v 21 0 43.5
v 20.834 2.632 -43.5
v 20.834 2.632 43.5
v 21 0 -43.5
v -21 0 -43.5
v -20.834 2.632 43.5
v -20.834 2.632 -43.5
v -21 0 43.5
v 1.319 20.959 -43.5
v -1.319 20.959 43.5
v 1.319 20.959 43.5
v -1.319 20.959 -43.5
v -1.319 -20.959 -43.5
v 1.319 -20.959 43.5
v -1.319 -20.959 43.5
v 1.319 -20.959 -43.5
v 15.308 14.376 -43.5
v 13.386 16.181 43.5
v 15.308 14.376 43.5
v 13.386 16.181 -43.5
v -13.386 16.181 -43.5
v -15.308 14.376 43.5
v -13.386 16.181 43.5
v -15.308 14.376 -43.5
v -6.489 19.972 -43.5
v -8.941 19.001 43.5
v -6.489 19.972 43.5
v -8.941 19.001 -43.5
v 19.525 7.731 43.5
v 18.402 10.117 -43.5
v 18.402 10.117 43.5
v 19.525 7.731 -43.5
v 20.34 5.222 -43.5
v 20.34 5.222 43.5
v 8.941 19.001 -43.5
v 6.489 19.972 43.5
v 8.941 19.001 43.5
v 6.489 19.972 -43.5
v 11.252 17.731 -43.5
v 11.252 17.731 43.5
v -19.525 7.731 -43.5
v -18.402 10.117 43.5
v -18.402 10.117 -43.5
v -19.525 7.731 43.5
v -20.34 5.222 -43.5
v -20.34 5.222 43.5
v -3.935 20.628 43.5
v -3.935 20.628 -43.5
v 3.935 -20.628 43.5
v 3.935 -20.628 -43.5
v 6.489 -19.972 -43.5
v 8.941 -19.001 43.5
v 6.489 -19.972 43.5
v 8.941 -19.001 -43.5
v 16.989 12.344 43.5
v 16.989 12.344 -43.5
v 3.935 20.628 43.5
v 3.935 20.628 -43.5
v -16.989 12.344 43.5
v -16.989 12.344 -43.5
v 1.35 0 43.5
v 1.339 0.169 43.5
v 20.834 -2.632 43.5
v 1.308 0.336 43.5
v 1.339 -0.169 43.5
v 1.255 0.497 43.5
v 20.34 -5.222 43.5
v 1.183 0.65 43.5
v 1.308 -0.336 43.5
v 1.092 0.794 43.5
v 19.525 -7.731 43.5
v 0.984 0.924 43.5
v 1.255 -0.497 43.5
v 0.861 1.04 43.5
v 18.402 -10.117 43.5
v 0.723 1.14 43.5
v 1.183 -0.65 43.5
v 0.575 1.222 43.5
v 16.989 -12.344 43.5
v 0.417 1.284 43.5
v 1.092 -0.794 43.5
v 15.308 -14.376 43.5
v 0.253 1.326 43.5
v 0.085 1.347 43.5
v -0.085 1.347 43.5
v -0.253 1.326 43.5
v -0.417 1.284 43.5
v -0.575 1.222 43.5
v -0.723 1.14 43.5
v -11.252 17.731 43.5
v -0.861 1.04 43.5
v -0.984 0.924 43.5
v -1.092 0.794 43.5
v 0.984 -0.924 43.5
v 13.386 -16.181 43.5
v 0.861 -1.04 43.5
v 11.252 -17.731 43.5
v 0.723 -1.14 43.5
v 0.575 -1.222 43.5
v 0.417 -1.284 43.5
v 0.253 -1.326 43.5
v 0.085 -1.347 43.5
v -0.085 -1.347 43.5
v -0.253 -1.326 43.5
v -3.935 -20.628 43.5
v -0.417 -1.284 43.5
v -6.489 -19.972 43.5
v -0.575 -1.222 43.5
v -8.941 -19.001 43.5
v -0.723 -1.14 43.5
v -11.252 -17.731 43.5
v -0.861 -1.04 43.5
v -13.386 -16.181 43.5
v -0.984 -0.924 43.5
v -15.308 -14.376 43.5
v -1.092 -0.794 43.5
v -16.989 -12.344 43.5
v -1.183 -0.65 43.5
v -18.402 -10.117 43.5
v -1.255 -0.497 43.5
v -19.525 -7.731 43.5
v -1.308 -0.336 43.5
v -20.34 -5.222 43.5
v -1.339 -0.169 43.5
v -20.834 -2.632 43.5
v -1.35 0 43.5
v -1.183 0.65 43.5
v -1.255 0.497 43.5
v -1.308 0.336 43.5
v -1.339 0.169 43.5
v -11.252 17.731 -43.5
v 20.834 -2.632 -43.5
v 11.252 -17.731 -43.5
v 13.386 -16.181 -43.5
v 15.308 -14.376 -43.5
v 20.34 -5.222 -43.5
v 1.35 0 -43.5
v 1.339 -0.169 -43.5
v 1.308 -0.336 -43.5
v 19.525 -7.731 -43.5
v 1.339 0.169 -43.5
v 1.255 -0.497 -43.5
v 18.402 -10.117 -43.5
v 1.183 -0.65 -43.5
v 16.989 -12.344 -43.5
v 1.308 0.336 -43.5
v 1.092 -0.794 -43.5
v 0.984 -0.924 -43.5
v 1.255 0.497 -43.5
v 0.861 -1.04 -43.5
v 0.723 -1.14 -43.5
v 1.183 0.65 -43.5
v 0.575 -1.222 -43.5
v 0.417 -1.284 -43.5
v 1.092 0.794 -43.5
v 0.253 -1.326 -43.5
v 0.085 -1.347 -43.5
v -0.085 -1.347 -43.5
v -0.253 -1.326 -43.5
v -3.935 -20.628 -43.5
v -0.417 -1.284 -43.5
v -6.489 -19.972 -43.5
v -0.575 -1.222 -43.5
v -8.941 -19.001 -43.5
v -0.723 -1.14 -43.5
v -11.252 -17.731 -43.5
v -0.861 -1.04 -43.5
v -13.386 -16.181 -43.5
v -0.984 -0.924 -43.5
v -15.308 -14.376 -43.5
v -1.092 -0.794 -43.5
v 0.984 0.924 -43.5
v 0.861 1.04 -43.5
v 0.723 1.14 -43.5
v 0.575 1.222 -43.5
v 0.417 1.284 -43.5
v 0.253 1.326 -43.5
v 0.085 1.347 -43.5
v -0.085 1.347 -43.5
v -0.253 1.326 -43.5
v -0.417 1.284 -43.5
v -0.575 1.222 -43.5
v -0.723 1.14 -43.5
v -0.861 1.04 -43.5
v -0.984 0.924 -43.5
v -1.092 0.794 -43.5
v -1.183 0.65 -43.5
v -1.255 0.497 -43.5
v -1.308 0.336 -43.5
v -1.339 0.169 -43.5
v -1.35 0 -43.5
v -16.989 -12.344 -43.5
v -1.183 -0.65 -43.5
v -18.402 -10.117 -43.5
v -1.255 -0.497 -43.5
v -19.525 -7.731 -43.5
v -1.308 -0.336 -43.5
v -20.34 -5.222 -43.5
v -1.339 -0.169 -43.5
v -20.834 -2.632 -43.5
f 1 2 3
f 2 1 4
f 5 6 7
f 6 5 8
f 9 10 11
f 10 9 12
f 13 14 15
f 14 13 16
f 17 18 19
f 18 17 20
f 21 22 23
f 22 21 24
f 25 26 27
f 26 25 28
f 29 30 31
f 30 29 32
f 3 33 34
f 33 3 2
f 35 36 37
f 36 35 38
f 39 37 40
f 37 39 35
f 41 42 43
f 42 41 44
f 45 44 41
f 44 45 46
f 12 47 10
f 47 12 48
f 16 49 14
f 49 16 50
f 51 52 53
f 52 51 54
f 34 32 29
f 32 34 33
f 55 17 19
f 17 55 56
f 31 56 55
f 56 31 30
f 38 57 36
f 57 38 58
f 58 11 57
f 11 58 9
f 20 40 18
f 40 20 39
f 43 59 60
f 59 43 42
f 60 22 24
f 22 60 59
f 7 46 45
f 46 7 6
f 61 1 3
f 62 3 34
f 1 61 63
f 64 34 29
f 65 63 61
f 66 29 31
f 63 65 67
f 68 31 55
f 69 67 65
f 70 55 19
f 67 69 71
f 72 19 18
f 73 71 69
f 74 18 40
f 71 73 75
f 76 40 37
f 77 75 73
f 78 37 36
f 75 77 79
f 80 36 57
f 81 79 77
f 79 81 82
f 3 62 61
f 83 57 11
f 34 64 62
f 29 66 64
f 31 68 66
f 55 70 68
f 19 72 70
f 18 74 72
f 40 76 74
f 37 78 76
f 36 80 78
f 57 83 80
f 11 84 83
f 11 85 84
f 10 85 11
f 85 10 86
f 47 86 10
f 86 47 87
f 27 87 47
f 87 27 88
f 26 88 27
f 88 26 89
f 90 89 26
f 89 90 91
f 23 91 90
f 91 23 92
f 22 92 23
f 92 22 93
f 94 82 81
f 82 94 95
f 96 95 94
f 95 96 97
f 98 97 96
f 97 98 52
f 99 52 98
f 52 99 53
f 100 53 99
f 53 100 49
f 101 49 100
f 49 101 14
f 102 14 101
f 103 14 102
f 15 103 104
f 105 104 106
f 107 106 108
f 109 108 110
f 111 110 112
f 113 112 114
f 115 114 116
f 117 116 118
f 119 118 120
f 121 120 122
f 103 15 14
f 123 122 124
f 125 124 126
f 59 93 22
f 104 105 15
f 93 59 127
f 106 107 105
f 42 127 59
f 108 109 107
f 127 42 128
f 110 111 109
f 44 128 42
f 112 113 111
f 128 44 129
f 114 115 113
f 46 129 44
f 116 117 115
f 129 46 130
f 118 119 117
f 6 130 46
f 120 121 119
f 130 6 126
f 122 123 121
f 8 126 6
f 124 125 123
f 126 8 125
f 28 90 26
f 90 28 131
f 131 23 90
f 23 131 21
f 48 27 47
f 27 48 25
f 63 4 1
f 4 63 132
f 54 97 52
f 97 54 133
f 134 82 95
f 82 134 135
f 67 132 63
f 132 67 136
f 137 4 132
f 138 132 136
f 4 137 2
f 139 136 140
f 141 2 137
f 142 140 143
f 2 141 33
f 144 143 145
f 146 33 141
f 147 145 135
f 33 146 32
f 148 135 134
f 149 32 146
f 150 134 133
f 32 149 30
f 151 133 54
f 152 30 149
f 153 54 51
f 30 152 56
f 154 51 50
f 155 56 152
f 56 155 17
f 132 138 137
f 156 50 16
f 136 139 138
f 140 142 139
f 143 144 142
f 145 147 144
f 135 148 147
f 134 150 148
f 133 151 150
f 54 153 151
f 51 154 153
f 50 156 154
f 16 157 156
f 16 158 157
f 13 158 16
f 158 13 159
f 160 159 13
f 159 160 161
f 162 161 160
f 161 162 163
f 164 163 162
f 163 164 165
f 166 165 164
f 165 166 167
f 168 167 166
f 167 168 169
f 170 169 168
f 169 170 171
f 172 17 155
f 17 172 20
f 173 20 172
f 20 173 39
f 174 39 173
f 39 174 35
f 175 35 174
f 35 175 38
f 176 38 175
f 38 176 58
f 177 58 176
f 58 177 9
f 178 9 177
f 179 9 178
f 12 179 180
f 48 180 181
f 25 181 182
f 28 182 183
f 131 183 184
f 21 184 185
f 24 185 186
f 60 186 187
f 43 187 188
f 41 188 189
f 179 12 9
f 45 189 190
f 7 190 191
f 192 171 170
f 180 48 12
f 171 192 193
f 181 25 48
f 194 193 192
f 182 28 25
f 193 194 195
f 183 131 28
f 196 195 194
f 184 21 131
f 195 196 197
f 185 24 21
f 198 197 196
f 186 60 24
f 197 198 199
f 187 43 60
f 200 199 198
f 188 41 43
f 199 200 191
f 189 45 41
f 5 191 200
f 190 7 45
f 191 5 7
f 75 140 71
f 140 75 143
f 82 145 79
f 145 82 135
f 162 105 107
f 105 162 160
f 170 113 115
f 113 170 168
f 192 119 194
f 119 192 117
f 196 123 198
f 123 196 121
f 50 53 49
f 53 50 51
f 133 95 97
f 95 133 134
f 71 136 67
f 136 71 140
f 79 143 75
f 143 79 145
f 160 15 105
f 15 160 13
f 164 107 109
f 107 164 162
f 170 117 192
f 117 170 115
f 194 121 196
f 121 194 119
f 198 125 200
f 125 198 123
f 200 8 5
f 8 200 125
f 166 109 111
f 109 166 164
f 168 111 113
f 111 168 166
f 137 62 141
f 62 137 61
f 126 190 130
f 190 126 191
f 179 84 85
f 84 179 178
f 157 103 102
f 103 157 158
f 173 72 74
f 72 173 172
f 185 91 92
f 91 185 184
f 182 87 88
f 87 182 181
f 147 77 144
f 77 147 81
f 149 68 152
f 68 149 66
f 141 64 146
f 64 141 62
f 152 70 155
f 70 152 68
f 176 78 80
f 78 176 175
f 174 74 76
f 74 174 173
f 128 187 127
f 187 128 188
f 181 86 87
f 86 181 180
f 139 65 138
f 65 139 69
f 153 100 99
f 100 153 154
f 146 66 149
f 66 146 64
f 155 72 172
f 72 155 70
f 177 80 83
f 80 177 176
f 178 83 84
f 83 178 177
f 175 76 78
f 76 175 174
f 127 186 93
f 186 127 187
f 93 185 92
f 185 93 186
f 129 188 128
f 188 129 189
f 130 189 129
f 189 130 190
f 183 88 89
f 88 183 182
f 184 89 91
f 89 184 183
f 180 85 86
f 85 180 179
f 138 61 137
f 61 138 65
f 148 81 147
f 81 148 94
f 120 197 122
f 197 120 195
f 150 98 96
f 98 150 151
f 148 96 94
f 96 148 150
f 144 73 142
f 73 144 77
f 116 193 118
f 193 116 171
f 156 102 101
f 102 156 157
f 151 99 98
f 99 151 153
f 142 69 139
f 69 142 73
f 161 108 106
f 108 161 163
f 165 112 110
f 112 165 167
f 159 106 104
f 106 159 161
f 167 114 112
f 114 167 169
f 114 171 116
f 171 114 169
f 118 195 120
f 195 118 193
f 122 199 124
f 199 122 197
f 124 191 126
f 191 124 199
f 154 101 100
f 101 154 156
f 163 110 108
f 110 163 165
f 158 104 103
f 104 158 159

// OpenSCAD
$fn = 50;


difference() {
	union() {
		translate(v = [0, 0, -43.5000000000]) {
			cylinder(h = 87, r = 21.0000000000);
		}
	}
	union() {
		translate(v = [0, 0, -100.0000000000]) {
			cylinder(h = 200, r = 1.3500000000);
		}
	}
}
